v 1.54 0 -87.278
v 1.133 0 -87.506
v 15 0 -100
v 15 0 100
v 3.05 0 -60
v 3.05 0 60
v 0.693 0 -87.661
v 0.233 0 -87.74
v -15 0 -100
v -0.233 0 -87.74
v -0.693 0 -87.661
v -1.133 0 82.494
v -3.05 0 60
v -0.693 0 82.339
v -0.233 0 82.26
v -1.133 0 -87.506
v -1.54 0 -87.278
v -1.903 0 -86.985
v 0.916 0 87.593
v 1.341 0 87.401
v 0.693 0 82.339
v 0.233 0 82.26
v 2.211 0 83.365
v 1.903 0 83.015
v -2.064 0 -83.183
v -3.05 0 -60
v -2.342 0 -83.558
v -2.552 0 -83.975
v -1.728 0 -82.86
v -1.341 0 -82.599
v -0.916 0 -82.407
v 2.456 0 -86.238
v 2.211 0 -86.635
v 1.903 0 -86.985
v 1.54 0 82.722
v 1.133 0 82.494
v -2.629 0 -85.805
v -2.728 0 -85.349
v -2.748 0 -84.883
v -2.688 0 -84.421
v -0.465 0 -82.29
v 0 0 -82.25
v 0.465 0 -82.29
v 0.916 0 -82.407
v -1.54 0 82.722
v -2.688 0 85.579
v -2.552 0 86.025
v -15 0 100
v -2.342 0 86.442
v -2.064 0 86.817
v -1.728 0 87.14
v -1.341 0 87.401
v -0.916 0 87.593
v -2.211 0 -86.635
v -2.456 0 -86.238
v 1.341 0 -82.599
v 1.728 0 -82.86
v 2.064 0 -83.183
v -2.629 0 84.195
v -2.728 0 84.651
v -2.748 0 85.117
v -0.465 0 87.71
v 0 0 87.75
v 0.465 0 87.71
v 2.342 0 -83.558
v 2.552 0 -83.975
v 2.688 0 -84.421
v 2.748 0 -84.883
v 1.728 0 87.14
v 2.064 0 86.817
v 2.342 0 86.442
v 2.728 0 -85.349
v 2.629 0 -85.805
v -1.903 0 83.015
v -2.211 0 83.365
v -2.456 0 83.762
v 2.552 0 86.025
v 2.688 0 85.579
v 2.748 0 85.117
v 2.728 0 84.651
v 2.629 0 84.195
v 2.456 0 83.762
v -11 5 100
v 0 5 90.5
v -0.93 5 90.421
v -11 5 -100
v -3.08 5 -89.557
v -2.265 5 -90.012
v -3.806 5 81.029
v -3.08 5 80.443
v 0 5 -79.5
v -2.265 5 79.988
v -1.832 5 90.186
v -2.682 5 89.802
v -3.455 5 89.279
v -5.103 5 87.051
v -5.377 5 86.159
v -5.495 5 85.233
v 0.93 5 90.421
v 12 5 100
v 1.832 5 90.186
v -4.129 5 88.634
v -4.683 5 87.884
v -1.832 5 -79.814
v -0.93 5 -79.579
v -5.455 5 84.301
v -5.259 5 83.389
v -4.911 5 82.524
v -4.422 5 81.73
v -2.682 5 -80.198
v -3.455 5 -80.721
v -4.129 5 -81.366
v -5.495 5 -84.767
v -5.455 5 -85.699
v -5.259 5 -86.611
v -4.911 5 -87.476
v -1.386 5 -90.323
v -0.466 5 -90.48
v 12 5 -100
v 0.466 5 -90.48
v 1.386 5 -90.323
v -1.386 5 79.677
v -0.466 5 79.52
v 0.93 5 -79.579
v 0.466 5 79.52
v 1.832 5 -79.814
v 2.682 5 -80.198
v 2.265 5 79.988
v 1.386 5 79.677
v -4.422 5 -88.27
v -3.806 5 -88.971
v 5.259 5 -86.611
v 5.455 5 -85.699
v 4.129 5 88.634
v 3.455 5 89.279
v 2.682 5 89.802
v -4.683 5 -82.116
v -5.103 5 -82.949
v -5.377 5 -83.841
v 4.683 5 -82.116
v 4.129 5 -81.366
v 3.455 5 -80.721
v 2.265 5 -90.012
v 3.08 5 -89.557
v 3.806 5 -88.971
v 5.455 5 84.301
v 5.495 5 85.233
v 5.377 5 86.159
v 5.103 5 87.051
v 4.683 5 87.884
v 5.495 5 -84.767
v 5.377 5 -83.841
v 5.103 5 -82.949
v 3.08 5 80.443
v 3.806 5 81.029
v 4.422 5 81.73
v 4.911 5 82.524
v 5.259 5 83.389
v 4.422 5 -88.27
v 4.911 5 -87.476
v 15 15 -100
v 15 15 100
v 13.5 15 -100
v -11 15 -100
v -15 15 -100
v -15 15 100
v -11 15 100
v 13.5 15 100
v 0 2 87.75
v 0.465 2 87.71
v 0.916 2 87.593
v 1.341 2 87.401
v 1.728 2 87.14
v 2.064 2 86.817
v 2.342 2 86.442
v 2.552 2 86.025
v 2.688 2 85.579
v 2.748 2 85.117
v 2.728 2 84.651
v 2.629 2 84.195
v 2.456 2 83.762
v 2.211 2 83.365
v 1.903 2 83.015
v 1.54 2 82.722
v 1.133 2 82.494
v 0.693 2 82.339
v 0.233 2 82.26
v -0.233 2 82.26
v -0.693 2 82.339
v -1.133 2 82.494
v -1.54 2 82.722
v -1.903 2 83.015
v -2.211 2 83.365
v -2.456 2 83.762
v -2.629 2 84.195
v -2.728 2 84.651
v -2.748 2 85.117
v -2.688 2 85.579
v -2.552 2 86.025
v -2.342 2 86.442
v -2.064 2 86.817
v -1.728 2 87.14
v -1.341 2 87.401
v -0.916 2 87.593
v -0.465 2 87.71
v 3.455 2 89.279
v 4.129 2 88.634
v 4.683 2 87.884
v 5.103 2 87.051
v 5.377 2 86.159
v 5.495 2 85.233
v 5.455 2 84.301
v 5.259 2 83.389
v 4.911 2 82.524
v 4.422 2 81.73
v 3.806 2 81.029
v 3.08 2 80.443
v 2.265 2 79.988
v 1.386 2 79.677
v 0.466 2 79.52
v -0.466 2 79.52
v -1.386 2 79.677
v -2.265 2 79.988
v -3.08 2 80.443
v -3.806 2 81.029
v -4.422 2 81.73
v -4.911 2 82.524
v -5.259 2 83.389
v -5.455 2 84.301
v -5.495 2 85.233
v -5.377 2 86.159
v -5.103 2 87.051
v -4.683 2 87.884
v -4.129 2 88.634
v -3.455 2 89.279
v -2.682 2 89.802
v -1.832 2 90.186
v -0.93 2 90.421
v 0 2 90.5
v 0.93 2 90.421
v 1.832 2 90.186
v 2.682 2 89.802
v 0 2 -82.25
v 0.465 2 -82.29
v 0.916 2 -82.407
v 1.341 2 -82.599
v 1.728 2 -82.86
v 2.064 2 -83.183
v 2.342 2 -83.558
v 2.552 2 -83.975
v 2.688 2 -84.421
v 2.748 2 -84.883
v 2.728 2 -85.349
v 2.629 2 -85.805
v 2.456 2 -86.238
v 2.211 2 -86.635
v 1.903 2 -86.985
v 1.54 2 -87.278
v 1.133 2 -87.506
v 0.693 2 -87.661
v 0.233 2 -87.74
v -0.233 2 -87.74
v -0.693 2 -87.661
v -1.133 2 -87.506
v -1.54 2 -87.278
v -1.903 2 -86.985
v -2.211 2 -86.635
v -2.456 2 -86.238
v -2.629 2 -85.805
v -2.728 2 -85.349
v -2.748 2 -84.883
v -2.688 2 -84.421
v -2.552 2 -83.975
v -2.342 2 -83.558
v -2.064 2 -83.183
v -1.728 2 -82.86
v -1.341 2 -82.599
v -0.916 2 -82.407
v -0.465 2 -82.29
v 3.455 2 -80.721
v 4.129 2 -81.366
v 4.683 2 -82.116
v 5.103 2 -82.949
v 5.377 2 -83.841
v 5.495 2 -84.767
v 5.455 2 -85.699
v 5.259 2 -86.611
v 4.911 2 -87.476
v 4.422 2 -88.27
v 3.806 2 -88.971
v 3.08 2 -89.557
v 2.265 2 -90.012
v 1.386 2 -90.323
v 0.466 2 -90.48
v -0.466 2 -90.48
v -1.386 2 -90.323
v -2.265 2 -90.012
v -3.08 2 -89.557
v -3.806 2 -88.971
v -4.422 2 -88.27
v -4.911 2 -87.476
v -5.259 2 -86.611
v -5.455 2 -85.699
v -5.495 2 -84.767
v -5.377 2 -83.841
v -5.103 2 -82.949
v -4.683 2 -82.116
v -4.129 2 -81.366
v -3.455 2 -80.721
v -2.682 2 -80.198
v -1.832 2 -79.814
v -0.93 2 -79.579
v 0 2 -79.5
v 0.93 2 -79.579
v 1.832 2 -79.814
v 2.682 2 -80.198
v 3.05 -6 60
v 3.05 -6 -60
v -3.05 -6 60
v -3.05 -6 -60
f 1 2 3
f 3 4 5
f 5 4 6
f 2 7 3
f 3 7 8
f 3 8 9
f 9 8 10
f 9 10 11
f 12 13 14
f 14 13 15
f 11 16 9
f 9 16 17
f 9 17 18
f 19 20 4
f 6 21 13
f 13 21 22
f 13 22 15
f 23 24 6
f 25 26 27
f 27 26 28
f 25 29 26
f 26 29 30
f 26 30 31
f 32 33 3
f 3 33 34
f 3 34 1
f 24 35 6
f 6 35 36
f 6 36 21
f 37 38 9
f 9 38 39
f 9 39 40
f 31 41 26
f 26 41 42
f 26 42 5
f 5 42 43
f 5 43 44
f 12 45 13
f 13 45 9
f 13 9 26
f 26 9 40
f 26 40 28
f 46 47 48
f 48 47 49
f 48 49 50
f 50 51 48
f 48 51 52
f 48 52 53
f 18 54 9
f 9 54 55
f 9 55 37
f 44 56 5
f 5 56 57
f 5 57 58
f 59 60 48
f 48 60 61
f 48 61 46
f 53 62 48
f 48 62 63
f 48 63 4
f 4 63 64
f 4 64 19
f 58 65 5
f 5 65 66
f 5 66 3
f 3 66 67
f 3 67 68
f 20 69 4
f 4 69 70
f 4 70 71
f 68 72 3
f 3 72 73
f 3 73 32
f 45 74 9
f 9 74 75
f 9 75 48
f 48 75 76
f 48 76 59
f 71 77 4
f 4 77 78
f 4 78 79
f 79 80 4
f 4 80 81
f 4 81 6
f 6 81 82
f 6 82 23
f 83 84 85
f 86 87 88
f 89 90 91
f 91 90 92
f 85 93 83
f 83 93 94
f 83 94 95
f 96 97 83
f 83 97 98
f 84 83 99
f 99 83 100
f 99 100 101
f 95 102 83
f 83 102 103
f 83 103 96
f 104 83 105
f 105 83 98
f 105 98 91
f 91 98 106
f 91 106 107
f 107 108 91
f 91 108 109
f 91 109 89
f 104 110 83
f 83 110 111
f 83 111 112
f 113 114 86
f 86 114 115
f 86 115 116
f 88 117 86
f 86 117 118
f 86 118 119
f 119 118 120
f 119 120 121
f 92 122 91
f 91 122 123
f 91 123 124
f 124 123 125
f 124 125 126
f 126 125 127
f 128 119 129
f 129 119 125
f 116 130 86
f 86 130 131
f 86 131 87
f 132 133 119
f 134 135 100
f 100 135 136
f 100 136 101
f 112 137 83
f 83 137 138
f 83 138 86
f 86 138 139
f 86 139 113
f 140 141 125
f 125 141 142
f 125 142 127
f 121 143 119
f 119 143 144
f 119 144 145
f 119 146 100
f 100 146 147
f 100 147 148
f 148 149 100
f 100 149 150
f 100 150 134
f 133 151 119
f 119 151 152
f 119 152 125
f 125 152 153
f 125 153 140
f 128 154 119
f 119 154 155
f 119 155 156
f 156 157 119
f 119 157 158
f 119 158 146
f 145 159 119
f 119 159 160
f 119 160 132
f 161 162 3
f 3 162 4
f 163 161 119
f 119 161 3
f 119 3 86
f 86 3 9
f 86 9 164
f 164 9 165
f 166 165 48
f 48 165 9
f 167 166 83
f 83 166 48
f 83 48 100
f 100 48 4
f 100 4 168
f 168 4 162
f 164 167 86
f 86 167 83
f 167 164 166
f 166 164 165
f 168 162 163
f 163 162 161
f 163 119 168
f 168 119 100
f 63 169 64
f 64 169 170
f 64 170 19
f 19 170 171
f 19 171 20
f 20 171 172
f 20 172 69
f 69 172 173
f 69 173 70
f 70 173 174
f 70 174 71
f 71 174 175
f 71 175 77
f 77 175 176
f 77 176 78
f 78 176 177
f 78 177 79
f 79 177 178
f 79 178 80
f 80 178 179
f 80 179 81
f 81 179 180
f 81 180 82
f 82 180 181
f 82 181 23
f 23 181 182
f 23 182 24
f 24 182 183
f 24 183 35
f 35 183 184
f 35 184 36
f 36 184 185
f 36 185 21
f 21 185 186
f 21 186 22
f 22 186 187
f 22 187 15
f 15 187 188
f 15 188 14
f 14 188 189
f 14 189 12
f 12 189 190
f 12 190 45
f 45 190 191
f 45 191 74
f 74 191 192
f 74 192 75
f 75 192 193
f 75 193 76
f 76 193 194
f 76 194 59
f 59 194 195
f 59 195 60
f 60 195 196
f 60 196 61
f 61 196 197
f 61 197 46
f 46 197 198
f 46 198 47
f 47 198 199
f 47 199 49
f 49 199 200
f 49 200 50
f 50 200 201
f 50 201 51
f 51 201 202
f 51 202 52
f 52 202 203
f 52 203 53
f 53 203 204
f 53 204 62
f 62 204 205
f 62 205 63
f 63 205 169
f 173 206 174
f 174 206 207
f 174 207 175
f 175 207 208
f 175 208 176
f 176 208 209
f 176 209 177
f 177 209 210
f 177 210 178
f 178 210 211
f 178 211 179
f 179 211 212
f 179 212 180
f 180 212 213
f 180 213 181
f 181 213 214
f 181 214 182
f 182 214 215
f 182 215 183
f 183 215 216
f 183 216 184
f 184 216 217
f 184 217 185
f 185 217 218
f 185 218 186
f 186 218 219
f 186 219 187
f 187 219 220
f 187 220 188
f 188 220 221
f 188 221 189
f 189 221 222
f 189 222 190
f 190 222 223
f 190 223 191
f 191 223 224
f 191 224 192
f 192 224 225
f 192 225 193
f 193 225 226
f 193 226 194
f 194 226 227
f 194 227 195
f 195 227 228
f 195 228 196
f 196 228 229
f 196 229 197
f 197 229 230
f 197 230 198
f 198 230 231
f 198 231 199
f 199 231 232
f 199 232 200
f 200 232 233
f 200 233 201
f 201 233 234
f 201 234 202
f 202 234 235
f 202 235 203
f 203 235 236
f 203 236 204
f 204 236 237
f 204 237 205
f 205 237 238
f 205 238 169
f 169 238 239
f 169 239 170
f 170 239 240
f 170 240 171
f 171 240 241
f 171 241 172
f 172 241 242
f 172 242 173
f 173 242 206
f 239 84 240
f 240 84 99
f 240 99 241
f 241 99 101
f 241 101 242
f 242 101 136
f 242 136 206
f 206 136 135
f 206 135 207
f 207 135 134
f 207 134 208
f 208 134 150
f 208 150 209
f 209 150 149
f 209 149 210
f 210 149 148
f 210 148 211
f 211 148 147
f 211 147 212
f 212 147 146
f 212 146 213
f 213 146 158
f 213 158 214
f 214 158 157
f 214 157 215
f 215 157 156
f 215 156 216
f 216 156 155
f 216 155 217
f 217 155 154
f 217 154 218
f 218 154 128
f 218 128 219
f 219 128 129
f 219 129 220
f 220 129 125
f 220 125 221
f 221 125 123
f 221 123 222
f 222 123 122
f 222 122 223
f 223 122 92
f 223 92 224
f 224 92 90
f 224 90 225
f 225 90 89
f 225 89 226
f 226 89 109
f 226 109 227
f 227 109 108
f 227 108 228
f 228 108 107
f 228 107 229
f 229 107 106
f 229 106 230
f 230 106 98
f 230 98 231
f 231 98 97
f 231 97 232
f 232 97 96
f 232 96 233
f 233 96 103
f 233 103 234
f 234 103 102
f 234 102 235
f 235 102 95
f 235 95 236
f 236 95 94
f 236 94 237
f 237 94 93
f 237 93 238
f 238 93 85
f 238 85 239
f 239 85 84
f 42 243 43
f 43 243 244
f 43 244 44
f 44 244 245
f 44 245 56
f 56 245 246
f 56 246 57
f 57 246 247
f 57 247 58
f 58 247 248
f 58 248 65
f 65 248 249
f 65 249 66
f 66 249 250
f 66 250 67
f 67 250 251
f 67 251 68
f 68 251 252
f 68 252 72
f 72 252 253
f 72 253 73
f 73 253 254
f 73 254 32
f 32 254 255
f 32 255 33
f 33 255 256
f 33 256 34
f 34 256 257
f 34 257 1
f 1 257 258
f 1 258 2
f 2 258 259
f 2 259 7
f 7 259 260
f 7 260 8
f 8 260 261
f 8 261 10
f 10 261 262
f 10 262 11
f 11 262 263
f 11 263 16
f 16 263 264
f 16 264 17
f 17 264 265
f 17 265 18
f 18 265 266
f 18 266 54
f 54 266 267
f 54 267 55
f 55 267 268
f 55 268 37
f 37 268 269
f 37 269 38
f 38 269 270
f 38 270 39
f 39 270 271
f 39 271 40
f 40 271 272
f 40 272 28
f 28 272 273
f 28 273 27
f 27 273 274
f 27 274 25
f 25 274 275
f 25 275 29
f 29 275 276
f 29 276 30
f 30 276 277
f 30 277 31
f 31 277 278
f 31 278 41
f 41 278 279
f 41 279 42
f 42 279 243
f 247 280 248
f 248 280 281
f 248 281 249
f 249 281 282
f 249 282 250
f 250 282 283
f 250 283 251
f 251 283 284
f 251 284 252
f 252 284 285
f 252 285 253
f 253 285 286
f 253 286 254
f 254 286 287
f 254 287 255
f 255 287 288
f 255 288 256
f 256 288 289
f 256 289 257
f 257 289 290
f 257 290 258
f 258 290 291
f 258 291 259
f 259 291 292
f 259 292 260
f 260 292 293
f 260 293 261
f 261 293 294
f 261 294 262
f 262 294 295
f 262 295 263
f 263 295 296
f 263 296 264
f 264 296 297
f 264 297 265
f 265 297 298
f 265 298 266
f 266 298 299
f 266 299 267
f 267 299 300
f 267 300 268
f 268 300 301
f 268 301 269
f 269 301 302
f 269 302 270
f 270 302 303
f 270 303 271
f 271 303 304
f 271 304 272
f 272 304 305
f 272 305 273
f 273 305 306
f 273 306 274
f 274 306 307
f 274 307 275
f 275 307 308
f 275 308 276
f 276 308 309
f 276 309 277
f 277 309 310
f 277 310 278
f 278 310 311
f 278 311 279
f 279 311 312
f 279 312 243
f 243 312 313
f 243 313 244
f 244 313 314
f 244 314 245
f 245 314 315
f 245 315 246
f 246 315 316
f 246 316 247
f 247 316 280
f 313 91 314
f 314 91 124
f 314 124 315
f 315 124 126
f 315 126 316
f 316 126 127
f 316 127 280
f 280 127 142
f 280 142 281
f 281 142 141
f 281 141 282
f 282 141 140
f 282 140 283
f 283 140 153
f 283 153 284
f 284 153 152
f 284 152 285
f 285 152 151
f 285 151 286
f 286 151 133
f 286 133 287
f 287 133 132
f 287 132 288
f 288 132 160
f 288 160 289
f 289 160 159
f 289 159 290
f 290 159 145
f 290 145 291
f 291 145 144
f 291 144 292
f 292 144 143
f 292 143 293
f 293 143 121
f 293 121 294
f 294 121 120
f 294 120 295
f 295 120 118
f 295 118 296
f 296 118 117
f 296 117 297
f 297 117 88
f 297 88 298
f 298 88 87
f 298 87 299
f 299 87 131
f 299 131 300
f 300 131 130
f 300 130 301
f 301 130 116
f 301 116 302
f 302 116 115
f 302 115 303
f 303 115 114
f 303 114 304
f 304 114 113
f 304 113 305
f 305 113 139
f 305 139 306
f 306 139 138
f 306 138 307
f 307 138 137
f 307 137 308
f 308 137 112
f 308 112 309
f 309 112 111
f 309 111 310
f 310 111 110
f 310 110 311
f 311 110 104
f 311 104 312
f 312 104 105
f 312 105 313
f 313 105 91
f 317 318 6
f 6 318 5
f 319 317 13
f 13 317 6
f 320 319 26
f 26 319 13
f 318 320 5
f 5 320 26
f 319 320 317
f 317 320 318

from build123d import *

# Parameters (mm, degrees)
SKETCH_1_W                   = 30
SKETCH_1_H                   = 200
EXTRUDE_1_DEPTH              = 5
SKETCH_2_W                   = 4
SKETCH_2_H                   = 200
SKETCH_2_W_2                 = 3
EXTRUDE_2_DEPTH              = 10
CUT_EXTRUDE_1_DEPTH          = 202.121853611
HOLE_WIZARD_M5_1_D           = 5.5
HOLE_WIZARD_M5_1_DEPTH       = 30
HOLE_WIZARD_M5_1_CBORE_D     = 11
HOLE_WIZARD_M5_1_CBORE_DEPTH = 3
HOLE_WIZARD_M5_1_TIP         = 1.652366702
SKETCH_7_W                   = 6.1
SKETCH_7_H                   = 120
EXTRUDE_3_DEPTH              = 6


with BuildPart() as part:
    # 스케치1 → 보스-돌출1 (new body)
    with BuildSketch(Plane(origin=(0, 0, 0), x_dir=(1, 0, 0), z_dir=(0, 1, 0))):
        Rectangle(SKETCH_1_W, SKETCH_1_H)
    extrude(amount=EXTRUDE_1_DEPTH)

    # 스케치2 → 보스-돌출2 (add)
    with BuildSketch(Plane(origin=(0, 5, 0), x_dir=(1, 0, 0), z_dir=(0, 1, 0))):
        with Locations((-13, 0)):
            Rectangle(SKETCH_2_W, SKETCH_2_H)
        with Locations((13.5, 0)):
            Rectangle(SKETCH_2_W_2, SKETCH_2_H)
    extrude(amount=EXTRUDE_2_DEPTH)

    # 스케치3 → 컷-돌출1 (cut, through all)
    with BuildSketch(Plane.XY.offset(100)):
        Polygon((12, 5), (12, 15), (13.5, 15), align=None)
    extrude(amount=-CUT_EXTRUDE_1_DEPTH, mode=Mode.SUBTRACT)

    # M5 소켓 머리 캡 나사용 카운터보어1
    with Locations(Plane(origin=(0, 5, 0), x_dir=(1, 0, 0), z_dir=(0, 1, 0))):
        with Locations((0, -85), (0, 85)):
            CounterBoreHole(HOLE_WIZARD_M5_1_D / 2, HOLE_WIZARD_M5_1_CBORE_D / 2, HOLE_WIZARD_M5_1_CBORE_DEPTH, depth=HOLE_WIZARD_M5_1_DEPTH)
            with Locations((0, 0, -(HOLE_WIZARD_M5_1_DEPTH + HOLE_WIZARD_M5_1_TIP / 2))):  # 118° drill point
                Cone(0, HOLE_WIZARD_M5_1_D / 2, HOLE_WIZARD_M5_1_TIP, mode=Mode.SUBTRACT)

    # 스케치7 → 보스-돌출3 (add)
    with BuildSketch(Plane.XZ):
        Rectangle(SKETCH_7_W, SKETCH_7_H)
    extrude(amount=EXTRUDE_3_DEPTH)


solid = part.part
